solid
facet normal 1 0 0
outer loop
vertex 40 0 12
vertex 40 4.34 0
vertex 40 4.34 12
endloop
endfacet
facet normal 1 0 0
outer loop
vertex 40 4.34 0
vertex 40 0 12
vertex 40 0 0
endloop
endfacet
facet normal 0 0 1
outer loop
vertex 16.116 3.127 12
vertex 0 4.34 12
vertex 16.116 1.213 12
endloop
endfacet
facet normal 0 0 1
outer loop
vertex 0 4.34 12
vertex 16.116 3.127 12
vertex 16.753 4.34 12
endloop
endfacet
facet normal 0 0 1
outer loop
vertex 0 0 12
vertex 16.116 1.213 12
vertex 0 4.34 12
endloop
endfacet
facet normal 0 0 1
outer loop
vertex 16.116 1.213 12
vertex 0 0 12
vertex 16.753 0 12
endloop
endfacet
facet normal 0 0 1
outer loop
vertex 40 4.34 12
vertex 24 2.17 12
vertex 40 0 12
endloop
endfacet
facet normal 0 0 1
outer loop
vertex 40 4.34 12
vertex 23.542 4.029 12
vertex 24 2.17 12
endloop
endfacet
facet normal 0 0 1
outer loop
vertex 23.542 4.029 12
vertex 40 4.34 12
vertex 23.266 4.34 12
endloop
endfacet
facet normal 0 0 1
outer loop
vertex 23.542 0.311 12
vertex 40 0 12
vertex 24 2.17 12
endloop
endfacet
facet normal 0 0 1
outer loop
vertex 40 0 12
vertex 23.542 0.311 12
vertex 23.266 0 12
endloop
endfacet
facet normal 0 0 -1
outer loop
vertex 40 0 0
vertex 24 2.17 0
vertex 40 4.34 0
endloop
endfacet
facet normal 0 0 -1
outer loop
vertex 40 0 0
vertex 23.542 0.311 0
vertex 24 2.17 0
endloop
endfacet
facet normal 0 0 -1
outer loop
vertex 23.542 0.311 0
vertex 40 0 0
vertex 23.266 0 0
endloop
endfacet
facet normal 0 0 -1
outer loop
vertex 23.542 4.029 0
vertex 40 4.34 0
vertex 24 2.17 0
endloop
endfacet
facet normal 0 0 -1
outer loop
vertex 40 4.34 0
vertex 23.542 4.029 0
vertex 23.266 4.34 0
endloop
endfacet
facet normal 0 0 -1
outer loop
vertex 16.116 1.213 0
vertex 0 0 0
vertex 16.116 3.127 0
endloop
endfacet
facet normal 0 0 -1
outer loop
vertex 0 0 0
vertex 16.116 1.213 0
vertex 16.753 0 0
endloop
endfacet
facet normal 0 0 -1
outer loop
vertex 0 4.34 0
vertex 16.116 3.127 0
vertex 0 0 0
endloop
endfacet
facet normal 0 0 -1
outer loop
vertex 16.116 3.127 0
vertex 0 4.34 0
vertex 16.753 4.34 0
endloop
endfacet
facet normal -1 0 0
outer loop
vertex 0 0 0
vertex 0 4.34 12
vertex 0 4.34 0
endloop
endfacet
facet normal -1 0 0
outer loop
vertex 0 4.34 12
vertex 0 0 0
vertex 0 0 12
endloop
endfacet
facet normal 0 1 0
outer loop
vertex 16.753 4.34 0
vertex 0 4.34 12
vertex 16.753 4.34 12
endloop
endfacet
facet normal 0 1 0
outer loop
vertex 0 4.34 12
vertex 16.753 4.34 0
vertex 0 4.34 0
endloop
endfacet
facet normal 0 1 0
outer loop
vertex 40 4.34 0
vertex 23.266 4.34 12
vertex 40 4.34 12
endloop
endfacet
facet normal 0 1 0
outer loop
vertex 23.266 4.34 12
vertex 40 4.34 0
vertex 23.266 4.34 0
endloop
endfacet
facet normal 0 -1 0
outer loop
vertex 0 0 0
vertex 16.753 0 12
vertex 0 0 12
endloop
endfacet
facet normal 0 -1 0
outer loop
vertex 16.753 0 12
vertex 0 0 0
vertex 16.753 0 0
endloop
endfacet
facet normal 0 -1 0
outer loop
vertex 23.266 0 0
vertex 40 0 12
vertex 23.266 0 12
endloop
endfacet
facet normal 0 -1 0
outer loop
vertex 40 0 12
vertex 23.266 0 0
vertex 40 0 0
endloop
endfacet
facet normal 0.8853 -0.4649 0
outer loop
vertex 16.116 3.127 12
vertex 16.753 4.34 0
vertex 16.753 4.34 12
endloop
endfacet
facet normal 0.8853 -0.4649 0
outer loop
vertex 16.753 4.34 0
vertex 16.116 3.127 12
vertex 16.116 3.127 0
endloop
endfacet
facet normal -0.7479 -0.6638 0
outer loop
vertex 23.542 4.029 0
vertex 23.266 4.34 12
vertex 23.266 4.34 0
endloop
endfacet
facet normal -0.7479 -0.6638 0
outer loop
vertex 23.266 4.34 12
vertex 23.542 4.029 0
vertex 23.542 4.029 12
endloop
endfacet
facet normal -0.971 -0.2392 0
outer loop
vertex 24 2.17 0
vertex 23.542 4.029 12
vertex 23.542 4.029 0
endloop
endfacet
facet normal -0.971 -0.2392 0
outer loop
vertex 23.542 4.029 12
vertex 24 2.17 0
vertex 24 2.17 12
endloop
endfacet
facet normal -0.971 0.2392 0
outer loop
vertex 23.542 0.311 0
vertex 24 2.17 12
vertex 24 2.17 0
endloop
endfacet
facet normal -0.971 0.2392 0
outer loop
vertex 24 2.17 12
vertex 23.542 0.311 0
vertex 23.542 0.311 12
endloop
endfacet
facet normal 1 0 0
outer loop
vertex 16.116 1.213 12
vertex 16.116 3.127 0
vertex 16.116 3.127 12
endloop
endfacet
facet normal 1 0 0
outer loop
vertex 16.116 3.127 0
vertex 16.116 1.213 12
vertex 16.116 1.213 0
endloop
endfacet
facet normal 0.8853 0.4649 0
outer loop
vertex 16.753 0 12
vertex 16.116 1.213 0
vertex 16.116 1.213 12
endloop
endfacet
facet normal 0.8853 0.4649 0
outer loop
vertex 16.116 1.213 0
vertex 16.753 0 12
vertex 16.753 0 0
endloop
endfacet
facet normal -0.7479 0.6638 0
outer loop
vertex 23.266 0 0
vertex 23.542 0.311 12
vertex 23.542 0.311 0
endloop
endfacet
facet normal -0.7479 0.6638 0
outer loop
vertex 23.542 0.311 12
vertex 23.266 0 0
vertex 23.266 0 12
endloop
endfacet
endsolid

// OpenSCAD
/* doodle-meta {"version":1,"parameters":{"width":{"label":"Overall width","description":"Changes the body width","unit":"mm","feature":"body_width"},"depth":{"label":"Overall depth","description":"Changes the body depth","unit":"mm","feature":"body_depth"},"height":{"label":"Overall height","description":"Changes the body height","unit":"mm","feature":"body_height"},"hole_diameter":{"label":"Hole diameter","description":"Changes the diameter of the central through-hole","unit":"mm","feature":"central_hole"}},"features":{"body_width":{"kind":"dimension","axis":"x","label":"Overall width"},"body_depth":{"kind":"dimension","axis":"y","label":"Overall depth"},"body_height":{"kind":"dimension","axis":"z","label":"Overall height"},"central_hole":{"kind":"region","label":"Central through-hole","min":[{"parameter":"width","scale":0.5,"offset":-4.0},{"parameter":"depth","scale":0.5,"offset":-4.0},0],"max":[{"parameter":"width","scale":0.5,"offset":4.0},{"parameter":"depth","scale":0.5,"offset":4.0},{"parameter":"height","scale":1.0,"offset":0}]}}} */

// Parameters
width = 40.0;
depth = 4.34;
height = 12.0;
hole_diameter = 8.0;

// Derived constants (not user-editable)
eps = 0.01;

// Main design
difference() {
    // Positive body: rectangular block sitting on Z=0
    cube([width, depth, height], center=false);
    
    // Subtractive cutter: central through-hole along Z
    // Axis is Z, so no rotation needed. Centered in XY.
    translate([width/2, depth/2, -eps]) {
        cylinder(d=hole_diameter, h=height + 2*eps, center=false);
    }
}
